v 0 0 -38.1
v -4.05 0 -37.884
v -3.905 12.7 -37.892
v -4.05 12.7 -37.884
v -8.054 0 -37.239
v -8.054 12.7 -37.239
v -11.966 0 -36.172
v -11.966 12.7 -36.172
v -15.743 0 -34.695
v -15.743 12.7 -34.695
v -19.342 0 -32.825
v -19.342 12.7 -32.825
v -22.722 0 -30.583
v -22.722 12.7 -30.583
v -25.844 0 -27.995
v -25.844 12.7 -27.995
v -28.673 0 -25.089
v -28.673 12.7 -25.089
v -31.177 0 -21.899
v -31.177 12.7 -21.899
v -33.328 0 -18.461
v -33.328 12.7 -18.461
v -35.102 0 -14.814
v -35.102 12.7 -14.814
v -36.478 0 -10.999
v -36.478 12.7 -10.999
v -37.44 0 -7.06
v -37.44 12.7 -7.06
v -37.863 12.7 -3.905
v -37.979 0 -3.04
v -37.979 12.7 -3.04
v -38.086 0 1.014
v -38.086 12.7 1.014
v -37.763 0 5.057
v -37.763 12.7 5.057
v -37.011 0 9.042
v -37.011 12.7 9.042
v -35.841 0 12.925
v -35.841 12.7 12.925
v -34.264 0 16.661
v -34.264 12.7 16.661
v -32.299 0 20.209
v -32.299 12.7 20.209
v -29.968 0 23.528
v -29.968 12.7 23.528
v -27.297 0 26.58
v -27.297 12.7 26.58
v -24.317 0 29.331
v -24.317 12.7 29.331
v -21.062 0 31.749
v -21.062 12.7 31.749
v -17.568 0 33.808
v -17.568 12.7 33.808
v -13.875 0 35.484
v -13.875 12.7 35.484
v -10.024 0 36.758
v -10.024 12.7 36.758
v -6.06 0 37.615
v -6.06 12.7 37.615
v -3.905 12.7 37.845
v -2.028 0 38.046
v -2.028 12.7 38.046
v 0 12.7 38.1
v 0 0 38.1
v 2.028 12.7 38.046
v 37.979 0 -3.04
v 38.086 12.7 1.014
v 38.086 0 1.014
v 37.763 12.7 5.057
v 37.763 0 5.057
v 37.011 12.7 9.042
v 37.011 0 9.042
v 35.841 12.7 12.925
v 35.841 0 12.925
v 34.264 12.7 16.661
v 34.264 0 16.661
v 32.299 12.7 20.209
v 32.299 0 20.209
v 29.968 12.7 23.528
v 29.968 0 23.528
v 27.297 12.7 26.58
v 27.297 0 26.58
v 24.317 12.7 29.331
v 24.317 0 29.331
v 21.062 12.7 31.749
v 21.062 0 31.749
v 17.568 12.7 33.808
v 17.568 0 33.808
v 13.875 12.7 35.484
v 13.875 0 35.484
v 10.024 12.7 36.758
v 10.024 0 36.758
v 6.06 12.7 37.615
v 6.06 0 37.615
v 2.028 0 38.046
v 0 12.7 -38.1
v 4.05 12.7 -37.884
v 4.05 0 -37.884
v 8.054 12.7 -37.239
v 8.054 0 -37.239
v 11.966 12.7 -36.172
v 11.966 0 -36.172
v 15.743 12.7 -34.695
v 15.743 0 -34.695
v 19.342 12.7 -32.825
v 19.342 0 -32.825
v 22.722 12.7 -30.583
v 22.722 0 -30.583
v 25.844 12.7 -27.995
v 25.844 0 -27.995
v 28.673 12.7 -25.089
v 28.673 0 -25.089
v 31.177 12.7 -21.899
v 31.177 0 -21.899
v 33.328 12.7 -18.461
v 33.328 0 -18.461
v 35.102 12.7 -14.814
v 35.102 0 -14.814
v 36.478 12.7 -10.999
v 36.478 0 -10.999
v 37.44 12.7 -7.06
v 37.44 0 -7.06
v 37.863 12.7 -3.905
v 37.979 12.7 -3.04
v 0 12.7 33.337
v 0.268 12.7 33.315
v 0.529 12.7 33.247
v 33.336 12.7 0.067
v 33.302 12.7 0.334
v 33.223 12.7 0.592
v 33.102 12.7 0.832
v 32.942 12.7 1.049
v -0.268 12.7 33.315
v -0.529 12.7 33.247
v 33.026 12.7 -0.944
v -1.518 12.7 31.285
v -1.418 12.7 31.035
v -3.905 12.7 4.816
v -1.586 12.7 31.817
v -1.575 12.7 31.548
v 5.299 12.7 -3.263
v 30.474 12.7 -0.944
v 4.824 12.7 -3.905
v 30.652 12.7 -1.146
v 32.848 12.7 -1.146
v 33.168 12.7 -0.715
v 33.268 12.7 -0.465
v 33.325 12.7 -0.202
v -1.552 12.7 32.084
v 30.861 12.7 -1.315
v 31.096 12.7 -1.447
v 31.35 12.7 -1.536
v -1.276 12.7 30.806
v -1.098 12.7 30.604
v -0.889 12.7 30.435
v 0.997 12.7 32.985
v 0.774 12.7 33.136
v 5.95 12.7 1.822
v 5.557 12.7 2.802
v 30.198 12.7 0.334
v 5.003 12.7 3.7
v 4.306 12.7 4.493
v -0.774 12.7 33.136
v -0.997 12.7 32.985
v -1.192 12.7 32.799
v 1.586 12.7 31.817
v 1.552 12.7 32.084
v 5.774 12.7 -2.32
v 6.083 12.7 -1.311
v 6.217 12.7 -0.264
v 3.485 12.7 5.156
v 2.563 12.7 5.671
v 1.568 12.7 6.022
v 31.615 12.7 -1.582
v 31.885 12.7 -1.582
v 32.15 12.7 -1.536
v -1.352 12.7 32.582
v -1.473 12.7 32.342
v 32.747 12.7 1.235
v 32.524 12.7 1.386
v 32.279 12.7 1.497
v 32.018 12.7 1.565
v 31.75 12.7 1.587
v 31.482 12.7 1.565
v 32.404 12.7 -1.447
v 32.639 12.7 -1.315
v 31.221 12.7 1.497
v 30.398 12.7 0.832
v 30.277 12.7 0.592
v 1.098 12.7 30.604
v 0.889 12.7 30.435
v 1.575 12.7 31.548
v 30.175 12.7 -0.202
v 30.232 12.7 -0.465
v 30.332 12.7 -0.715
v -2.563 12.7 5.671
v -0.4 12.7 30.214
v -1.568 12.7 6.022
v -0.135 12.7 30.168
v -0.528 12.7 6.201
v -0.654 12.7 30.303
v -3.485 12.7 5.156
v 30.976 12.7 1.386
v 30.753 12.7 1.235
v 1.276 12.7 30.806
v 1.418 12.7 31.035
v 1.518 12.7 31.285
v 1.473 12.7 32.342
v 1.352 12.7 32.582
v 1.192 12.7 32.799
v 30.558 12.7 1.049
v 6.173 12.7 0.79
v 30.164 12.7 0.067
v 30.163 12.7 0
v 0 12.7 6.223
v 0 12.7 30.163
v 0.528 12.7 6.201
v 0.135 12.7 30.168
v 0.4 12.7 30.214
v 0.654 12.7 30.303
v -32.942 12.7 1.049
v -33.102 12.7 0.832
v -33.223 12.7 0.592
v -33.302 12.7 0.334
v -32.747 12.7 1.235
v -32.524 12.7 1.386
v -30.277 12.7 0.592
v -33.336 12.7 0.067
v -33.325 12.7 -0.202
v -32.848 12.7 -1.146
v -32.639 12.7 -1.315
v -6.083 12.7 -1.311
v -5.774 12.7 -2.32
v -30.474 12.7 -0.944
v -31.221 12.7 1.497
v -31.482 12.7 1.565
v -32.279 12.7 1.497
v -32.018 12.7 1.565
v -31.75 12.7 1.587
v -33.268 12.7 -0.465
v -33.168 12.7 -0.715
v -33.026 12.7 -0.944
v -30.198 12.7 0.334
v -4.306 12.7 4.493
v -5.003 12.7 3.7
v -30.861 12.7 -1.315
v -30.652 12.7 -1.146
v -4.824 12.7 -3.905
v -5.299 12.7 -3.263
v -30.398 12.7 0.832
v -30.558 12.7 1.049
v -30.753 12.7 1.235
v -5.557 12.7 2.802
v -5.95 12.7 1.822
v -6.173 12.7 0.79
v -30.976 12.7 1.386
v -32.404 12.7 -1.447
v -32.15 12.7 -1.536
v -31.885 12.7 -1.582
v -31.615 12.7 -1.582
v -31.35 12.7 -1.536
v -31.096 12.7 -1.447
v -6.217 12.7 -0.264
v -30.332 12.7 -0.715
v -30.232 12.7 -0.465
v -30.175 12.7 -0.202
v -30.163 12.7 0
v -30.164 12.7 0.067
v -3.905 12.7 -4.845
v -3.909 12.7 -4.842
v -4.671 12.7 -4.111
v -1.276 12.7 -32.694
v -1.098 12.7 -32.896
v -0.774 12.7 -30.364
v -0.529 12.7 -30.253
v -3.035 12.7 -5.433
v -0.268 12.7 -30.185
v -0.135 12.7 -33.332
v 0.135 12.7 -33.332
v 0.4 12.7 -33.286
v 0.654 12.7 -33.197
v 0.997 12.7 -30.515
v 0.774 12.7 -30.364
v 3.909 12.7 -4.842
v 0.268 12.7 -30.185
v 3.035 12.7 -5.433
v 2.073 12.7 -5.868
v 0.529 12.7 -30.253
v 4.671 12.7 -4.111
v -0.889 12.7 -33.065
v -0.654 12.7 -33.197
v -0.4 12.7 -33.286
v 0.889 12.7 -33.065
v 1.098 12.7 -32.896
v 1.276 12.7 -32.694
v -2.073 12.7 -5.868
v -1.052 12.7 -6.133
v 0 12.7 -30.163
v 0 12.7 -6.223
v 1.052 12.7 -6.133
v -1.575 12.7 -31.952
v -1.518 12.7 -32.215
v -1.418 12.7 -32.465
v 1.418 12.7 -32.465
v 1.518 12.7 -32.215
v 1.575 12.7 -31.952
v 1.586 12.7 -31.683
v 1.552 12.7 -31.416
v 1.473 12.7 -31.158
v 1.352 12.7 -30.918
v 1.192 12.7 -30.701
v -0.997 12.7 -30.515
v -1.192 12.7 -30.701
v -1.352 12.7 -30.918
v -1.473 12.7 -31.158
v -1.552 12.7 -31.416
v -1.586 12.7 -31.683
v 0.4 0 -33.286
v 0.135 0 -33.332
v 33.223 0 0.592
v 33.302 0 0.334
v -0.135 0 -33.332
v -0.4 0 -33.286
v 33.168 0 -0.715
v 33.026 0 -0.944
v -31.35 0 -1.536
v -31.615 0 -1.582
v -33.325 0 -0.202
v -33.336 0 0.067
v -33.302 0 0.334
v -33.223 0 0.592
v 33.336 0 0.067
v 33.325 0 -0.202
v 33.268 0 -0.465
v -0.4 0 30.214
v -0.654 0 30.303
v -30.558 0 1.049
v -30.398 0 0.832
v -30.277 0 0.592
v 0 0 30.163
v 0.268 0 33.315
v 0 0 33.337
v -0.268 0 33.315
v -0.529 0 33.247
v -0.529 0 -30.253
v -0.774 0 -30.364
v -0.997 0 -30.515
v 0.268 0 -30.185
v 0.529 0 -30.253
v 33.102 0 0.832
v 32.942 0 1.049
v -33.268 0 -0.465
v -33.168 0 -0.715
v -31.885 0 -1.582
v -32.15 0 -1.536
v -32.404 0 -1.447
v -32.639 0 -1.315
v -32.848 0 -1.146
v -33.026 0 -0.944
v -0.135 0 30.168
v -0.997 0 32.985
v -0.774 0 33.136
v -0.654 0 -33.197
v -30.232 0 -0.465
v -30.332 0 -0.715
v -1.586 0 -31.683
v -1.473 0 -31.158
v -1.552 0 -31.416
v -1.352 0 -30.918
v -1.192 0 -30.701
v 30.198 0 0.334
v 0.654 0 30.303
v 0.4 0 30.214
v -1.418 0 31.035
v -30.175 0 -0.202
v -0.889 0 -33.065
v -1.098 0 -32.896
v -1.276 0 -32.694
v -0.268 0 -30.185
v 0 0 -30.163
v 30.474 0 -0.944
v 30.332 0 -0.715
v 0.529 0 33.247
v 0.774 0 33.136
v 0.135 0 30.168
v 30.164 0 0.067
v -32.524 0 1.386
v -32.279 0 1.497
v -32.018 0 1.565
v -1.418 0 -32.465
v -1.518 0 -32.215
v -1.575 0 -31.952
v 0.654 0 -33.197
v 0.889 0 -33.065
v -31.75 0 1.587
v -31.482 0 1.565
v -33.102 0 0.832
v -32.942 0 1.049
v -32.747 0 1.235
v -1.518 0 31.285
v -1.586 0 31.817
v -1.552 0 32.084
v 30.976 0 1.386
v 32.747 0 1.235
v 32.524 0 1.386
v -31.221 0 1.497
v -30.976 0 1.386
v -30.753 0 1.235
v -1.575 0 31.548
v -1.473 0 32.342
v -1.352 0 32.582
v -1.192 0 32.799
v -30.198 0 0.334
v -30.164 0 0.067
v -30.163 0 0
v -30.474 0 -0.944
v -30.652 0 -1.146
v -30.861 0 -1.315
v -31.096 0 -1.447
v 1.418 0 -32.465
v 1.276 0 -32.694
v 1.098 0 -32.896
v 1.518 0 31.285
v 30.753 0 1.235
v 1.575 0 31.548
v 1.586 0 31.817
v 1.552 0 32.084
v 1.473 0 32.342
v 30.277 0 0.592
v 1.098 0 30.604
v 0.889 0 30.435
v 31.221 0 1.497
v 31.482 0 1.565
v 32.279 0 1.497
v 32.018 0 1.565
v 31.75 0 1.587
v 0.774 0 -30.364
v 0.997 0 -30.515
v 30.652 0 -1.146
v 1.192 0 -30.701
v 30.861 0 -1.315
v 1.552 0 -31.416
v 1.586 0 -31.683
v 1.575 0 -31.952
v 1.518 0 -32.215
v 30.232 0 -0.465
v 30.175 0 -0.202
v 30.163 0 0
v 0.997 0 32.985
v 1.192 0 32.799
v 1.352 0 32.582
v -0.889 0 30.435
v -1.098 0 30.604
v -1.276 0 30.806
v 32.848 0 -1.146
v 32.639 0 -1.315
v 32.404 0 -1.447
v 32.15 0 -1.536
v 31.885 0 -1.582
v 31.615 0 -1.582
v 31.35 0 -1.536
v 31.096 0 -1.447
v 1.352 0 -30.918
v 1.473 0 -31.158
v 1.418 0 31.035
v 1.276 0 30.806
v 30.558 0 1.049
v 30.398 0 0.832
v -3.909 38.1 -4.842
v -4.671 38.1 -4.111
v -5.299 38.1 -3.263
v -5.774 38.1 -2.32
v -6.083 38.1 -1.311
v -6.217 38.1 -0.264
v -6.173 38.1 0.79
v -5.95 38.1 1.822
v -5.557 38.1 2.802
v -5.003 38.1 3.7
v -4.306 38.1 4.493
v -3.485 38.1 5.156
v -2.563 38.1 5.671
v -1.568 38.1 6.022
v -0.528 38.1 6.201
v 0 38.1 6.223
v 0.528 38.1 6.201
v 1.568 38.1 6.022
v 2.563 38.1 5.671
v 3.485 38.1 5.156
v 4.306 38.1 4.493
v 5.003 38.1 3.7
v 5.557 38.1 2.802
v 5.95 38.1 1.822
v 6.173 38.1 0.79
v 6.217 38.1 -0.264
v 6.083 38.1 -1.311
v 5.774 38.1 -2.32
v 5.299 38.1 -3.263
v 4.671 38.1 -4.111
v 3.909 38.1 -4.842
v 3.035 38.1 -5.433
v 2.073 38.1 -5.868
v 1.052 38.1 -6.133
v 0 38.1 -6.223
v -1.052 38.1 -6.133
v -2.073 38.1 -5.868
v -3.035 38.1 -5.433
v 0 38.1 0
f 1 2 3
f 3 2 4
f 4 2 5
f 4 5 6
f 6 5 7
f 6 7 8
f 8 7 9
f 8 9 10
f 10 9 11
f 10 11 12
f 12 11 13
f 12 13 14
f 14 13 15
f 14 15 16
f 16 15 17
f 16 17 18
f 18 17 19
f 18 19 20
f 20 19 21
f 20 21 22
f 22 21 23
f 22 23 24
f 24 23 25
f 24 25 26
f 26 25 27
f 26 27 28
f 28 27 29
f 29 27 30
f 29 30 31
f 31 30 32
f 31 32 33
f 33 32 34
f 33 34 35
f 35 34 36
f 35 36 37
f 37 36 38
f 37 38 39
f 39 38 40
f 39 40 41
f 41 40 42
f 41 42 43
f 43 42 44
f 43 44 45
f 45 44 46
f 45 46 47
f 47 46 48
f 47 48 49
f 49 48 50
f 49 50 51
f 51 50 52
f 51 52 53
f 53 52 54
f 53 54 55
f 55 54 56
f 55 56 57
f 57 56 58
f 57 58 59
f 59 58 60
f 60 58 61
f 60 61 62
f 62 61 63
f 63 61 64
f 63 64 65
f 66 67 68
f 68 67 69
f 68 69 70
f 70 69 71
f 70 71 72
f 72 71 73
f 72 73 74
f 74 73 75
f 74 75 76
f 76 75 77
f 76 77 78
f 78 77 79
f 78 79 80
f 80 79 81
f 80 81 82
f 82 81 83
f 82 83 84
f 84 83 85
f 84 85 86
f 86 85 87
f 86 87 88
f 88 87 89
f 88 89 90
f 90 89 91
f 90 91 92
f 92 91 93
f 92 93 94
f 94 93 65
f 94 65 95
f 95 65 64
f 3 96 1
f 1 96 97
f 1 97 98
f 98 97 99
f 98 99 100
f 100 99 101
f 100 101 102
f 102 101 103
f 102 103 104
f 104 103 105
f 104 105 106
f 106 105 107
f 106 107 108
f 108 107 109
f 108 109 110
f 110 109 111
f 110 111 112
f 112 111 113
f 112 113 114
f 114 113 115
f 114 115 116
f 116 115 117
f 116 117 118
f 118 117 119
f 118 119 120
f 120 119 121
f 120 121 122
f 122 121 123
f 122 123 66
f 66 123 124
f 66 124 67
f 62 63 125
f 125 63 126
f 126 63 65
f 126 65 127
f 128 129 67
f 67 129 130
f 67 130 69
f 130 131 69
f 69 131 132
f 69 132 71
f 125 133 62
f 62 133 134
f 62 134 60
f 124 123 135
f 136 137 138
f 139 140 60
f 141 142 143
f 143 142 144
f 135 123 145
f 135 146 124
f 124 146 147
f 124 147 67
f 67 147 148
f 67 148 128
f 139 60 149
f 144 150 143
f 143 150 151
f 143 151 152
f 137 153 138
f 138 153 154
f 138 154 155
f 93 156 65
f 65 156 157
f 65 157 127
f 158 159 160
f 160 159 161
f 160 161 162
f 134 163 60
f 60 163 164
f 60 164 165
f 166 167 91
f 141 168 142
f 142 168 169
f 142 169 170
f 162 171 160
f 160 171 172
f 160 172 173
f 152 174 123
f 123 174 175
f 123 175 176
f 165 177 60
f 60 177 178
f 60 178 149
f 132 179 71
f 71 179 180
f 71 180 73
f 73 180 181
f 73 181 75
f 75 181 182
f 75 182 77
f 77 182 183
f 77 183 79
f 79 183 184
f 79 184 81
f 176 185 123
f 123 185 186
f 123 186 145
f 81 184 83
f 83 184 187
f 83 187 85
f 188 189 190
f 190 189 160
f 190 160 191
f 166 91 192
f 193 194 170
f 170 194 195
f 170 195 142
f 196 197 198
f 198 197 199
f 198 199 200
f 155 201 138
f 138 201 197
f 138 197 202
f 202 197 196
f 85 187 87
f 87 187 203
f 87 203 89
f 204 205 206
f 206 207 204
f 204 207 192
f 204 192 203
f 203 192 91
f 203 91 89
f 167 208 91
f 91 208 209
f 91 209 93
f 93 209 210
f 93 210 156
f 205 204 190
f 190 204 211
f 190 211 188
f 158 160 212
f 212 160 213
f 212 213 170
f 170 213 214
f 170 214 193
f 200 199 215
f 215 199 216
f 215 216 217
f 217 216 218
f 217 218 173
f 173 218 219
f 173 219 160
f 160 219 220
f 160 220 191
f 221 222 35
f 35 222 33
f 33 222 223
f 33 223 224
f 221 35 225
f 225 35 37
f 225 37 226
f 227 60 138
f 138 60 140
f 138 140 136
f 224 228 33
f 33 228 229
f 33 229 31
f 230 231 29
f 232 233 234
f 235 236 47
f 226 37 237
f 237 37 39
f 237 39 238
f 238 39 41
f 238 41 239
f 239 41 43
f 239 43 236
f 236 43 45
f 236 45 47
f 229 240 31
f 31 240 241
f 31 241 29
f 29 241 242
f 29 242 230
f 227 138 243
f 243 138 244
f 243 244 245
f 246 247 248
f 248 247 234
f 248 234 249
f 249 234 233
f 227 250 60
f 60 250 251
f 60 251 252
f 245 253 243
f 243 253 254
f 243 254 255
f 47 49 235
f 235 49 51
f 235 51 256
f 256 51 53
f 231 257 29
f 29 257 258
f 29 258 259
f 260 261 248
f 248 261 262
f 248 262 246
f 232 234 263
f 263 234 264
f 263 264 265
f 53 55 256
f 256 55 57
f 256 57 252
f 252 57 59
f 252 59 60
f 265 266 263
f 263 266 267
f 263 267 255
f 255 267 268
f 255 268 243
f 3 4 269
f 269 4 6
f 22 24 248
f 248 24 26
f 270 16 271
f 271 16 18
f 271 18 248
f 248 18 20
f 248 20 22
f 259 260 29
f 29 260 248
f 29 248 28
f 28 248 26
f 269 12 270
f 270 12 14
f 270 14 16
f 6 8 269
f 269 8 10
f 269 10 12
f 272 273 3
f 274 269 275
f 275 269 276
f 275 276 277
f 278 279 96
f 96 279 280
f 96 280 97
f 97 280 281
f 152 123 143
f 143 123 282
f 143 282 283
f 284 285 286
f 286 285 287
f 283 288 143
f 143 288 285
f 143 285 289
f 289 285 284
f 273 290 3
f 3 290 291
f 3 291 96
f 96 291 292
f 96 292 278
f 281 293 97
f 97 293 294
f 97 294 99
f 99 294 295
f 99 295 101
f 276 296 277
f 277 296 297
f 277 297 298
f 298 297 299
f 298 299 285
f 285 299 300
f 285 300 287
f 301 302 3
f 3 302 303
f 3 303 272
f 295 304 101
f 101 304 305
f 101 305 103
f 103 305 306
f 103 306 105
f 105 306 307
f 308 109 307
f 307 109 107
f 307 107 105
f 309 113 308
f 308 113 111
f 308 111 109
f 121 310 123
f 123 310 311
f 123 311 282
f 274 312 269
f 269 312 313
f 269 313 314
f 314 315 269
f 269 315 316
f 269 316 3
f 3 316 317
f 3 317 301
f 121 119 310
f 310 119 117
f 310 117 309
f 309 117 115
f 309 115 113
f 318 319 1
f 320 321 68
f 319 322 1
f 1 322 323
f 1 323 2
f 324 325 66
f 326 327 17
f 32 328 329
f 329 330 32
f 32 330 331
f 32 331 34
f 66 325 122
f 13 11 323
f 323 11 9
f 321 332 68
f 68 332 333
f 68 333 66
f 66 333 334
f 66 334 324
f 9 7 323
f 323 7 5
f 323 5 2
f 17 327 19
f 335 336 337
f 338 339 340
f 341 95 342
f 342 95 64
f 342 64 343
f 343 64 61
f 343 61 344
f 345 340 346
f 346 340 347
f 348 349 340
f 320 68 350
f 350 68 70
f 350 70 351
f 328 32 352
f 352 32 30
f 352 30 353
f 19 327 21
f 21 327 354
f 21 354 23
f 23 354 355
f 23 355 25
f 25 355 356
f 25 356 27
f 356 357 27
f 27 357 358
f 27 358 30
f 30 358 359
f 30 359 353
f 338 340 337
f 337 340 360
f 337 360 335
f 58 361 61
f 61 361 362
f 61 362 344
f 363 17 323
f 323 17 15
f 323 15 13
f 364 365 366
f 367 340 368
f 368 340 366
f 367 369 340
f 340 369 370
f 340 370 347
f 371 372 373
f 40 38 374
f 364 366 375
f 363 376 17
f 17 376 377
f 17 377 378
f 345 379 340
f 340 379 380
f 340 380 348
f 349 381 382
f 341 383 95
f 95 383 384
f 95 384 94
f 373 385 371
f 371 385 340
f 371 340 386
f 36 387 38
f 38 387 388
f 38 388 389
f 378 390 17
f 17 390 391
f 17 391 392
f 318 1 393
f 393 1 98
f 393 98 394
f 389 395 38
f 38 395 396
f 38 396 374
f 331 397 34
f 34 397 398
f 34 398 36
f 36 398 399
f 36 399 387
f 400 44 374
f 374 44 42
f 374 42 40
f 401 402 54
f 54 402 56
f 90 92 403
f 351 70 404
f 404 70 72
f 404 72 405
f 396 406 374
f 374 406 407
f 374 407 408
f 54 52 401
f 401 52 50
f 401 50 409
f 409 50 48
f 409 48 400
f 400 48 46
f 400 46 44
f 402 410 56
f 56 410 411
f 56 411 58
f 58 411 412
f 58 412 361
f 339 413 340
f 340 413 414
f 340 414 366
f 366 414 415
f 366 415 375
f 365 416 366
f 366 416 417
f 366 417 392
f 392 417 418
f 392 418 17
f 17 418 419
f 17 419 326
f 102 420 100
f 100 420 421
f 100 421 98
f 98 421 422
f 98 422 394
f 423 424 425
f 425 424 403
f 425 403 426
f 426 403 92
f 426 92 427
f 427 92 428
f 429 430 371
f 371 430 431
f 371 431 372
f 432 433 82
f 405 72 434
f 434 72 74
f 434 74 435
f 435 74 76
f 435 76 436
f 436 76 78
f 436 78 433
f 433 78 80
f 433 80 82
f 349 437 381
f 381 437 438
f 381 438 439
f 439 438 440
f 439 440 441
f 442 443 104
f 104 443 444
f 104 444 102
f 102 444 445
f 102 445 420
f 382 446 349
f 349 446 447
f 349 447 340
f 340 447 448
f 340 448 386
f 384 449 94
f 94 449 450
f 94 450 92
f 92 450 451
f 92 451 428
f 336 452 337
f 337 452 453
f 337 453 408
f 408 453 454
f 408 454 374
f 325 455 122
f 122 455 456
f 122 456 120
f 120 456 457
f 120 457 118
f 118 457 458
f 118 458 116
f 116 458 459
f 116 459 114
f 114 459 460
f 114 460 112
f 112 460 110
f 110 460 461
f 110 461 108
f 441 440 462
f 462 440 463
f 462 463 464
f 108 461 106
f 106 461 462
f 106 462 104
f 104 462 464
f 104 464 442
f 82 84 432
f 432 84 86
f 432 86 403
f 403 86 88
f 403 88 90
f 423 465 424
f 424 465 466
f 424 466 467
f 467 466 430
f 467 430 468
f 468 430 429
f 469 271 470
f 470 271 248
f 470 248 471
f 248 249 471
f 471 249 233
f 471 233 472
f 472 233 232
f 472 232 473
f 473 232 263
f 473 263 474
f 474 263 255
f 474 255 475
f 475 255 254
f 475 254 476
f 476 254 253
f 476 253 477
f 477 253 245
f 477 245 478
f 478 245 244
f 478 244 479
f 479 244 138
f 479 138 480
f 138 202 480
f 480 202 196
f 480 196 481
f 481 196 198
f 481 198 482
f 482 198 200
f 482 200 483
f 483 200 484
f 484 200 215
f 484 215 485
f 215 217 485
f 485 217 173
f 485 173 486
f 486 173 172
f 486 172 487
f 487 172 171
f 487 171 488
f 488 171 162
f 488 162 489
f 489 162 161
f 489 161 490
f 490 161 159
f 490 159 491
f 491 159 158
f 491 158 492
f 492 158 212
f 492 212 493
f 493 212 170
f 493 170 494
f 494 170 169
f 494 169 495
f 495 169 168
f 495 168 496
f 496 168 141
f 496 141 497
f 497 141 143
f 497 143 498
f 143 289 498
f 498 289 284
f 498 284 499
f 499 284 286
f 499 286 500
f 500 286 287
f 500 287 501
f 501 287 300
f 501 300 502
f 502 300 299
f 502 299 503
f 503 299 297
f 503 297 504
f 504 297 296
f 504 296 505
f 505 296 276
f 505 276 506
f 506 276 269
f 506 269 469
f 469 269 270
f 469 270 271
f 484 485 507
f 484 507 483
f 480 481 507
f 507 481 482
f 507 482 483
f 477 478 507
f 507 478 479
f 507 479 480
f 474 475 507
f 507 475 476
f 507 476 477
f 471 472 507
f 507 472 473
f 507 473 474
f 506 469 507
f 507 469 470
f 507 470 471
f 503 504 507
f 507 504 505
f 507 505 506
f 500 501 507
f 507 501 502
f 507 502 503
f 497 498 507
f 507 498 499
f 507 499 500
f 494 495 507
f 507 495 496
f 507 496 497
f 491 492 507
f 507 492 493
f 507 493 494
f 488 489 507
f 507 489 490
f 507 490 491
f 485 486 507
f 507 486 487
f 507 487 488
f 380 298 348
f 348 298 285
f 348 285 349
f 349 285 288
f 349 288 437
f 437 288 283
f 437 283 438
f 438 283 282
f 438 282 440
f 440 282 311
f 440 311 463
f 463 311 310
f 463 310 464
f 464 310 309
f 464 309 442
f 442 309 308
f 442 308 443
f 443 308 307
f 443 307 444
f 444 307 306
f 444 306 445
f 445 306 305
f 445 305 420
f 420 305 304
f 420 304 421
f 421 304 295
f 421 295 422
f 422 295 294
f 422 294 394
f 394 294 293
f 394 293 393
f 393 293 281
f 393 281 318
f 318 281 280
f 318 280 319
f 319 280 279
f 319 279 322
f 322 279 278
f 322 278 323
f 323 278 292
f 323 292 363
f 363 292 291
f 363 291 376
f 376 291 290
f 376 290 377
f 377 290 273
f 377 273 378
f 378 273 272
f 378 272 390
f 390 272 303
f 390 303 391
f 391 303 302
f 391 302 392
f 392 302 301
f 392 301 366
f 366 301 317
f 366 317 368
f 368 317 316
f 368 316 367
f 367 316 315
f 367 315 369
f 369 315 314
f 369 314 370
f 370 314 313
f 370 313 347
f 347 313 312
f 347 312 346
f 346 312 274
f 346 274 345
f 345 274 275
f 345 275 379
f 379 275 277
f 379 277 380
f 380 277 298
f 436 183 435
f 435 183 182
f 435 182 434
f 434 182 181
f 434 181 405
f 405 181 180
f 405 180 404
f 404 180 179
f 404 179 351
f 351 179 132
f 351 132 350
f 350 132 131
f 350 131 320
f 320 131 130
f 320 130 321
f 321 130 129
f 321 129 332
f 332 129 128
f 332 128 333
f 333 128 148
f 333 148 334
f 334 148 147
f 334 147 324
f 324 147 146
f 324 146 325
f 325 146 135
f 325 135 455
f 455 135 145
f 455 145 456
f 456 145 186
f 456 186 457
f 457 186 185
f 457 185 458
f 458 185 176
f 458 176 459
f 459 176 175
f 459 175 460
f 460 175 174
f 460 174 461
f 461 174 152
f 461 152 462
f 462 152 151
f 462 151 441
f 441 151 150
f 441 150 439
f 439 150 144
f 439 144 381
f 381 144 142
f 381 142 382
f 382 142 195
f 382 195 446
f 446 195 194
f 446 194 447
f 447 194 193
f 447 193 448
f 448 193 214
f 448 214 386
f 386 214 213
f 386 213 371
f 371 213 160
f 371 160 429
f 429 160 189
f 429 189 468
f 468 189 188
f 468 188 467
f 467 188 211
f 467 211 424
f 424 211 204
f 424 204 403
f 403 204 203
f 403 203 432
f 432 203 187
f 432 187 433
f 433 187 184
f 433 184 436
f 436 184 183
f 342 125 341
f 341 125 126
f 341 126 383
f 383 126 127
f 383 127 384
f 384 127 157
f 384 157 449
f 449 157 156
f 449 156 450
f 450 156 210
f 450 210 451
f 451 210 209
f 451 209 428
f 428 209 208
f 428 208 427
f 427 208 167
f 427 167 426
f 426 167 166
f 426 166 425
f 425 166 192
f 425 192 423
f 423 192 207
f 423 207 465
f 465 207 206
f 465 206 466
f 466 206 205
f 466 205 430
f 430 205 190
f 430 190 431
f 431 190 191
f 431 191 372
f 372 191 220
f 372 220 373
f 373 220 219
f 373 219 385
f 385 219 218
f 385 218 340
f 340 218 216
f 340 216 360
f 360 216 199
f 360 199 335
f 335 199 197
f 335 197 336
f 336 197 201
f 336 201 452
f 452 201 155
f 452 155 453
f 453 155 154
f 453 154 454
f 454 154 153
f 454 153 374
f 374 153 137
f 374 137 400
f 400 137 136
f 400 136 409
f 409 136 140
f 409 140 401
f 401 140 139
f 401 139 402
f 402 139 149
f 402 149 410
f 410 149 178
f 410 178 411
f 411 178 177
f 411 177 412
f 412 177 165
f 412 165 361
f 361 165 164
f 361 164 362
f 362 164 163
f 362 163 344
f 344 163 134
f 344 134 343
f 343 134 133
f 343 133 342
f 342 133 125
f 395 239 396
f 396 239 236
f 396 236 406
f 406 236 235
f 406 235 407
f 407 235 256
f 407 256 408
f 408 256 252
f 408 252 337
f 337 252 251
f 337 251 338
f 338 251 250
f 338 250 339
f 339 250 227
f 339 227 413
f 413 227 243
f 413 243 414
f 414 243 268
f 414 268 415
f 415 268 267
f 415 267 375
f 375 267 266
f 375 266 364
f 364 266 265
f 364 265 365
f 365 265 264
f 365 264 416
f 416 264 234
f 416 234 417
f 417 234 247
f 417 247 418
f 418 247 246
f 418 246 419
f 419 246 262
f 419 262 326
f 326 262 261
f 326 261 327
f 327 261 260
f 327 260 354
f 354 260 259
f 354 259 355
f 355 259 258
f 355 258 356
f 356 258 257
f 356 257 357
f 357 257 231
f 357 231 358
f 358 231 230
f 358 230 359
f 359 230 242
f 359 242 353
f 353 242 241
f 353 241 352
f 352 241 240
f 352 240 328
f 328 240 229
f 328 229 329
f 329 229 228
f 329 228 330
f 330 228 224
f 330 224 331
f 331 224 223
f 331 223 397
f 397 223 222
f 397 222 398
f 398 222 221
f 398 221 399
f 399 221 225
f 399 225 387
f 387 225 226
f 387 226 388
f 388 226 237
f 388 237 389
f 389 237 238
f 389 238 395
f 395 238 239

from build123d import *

# Parameters (mm, degrees)
SKETCH1_R           = 38.1
BOSS_EXTRUDE1_DEPTH = 12.7
SKETCH2_R           = 6.223
BOSS_EXTRUDE2_DEPTH = 25.4
SKETCH3_R           = 1.5875
CUT_EXTRUDE1_DEPTH  = 60.56828015
CIRPATTERN1_COUNT   = 4


with BuildPart() as part:
    # Sketch1 → Boss-Extrude1 (new body)
    with BuildSketch(Plane(origin=(0, 0, 0), x_dir=(1, 0, 0), z_dir=(0, 1, 0))):
        with Locations(Location((0, 0, 0), (0, 0, 270))):
            Circle(SKETCH1_R)
    extrude(amount=BOSS_EXTRUDE1_DEPTH)

    # Sketch2 → Boss-Extrude2 (add)
    with BuildSketch(Plane(origin=(0, 12.7, 0), x_dir=(1, 0, 0), z_dir=(0, 1, 0))):
        with Locations(Location((0, 0, 0), (0, 0, 270))):
            Circle(SKETCH2_R)
    extrude(amount=BOSS_EXTRUDE2_DEPTH)

    # Sketch3 → Cut-Extrude1 (cut, through all)
    with BuildSketch(Plane(origin=(0, 12.7, 0), x_dir=(1, 0, 0), z_dir=(0, 1, 0))):
        with Locations(Location((0, 31.75, 0), (0, 0, 270))):
            Circle(SKETCH3_R)
    cut_extrude1 = extrude(amount=-CUT_EXTRUDE1_DEPTH, mode=Mode.SUBTRACT)

    # CirPattern1: Cut-Extrude1 ×4 about axis
    cirpattern1_axis = Axis((0, 0, 0), (0, 1, 0))
    for i in range(1, CIRPATTERN1_COUNT):
        add(cut_extrude1.rotate(cirpattern1_axis, i * 360 / CIRPATTERN1_COUNT), mode=Mode.SUBTRACT)


solid = part.part
